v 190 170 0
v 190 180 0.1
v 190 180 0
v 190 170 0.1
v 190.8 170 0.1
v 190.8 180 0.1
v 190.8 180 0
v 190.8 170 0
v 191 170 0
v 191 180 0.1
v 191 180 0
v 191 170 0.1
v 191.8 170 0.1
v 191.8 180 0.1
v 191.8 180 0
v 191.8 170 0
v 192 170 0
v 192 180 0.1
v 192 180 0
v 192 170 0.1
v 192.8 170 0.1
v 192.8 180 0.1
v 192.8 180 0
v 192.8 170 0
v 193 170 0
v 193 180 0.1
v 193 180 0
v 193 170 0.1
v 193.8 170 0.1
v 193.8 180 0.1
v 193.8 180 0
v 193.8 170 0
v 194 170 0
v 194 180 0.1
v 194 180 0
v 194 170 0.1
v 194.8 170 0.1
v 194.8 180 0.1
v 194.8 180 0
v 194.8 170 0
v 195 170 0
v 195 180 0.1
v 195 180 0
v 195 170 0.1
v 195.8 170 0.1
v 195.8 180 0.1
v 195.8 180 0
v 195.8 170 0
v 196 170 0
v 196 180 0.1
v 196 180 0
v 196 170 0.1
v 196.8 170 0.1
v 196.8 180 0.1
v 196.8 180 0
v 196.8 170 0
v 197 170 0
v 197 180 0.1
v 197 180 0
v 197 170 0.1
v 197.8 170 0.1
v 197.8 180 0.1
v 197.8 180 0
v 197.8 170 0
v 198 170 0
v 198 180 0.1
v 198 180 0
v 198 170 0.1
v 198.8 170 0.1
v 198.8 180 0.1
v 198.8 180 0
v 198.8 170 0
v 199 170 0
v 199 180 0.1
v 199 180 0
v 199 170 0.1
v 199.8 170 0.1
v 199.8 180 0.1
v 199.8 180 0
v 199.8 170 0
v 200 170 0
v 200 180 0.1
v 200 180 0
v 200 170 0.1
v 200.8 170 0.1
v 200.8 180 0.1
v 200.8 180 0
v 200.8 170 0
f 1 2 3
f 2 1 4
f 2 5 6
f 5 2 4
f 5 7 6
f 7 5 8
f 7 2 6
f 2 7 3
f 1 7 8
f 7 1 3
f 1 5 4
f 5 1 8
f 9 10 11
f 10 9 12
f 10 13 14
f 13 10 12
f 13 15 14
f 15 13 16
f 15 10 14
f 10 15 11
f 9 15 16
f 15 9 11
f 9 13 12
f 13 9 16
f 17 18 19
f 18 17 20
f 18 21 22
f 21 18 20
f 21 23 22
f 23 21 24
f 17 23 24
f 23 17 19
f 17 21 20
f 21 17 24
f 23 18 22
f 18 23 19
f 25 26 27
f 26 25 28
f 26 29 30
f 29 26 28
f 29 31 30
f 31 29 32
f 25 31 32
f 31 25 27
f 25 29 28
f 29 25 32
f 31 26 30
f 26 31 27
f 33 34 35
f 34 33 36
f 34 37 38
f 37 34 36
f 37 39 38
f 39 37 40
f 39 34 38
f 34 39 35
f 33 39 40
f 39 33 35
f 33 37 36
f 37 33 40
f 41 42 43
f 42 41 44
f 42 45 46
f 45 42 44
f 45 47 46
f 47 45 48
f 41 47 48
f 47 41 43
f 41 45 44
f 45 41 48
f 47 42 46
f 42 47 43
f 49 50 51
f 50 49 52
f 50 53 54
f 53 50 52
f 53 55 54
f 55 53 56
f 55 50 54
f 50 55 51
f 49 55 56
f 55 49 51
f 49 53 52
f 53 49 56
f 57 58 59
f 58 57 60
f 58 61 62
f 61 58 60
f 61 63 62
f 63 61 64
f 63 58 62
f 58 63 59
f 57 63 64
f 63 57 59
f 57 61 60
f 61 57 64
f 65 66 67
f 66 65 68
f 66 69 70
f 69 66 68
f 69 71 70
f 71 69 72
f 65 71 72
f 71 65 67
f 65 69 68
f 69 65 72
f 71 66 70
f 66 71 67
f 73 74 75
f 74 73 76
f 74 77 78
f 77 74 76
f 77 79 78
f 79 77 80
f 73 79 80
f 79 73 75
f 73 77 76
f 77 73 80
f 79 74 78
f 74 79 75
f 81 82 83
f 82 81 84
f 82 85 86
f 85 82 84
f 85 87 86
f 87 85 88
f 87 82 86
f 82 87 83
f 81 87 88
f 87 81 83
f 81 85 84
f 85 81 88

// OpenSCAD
translate([10+180,10+160,0])
        for (i = [0 : 10]){
            translate([i,0,0])
                cube(size = [0.8,10,0.1]);
    }
